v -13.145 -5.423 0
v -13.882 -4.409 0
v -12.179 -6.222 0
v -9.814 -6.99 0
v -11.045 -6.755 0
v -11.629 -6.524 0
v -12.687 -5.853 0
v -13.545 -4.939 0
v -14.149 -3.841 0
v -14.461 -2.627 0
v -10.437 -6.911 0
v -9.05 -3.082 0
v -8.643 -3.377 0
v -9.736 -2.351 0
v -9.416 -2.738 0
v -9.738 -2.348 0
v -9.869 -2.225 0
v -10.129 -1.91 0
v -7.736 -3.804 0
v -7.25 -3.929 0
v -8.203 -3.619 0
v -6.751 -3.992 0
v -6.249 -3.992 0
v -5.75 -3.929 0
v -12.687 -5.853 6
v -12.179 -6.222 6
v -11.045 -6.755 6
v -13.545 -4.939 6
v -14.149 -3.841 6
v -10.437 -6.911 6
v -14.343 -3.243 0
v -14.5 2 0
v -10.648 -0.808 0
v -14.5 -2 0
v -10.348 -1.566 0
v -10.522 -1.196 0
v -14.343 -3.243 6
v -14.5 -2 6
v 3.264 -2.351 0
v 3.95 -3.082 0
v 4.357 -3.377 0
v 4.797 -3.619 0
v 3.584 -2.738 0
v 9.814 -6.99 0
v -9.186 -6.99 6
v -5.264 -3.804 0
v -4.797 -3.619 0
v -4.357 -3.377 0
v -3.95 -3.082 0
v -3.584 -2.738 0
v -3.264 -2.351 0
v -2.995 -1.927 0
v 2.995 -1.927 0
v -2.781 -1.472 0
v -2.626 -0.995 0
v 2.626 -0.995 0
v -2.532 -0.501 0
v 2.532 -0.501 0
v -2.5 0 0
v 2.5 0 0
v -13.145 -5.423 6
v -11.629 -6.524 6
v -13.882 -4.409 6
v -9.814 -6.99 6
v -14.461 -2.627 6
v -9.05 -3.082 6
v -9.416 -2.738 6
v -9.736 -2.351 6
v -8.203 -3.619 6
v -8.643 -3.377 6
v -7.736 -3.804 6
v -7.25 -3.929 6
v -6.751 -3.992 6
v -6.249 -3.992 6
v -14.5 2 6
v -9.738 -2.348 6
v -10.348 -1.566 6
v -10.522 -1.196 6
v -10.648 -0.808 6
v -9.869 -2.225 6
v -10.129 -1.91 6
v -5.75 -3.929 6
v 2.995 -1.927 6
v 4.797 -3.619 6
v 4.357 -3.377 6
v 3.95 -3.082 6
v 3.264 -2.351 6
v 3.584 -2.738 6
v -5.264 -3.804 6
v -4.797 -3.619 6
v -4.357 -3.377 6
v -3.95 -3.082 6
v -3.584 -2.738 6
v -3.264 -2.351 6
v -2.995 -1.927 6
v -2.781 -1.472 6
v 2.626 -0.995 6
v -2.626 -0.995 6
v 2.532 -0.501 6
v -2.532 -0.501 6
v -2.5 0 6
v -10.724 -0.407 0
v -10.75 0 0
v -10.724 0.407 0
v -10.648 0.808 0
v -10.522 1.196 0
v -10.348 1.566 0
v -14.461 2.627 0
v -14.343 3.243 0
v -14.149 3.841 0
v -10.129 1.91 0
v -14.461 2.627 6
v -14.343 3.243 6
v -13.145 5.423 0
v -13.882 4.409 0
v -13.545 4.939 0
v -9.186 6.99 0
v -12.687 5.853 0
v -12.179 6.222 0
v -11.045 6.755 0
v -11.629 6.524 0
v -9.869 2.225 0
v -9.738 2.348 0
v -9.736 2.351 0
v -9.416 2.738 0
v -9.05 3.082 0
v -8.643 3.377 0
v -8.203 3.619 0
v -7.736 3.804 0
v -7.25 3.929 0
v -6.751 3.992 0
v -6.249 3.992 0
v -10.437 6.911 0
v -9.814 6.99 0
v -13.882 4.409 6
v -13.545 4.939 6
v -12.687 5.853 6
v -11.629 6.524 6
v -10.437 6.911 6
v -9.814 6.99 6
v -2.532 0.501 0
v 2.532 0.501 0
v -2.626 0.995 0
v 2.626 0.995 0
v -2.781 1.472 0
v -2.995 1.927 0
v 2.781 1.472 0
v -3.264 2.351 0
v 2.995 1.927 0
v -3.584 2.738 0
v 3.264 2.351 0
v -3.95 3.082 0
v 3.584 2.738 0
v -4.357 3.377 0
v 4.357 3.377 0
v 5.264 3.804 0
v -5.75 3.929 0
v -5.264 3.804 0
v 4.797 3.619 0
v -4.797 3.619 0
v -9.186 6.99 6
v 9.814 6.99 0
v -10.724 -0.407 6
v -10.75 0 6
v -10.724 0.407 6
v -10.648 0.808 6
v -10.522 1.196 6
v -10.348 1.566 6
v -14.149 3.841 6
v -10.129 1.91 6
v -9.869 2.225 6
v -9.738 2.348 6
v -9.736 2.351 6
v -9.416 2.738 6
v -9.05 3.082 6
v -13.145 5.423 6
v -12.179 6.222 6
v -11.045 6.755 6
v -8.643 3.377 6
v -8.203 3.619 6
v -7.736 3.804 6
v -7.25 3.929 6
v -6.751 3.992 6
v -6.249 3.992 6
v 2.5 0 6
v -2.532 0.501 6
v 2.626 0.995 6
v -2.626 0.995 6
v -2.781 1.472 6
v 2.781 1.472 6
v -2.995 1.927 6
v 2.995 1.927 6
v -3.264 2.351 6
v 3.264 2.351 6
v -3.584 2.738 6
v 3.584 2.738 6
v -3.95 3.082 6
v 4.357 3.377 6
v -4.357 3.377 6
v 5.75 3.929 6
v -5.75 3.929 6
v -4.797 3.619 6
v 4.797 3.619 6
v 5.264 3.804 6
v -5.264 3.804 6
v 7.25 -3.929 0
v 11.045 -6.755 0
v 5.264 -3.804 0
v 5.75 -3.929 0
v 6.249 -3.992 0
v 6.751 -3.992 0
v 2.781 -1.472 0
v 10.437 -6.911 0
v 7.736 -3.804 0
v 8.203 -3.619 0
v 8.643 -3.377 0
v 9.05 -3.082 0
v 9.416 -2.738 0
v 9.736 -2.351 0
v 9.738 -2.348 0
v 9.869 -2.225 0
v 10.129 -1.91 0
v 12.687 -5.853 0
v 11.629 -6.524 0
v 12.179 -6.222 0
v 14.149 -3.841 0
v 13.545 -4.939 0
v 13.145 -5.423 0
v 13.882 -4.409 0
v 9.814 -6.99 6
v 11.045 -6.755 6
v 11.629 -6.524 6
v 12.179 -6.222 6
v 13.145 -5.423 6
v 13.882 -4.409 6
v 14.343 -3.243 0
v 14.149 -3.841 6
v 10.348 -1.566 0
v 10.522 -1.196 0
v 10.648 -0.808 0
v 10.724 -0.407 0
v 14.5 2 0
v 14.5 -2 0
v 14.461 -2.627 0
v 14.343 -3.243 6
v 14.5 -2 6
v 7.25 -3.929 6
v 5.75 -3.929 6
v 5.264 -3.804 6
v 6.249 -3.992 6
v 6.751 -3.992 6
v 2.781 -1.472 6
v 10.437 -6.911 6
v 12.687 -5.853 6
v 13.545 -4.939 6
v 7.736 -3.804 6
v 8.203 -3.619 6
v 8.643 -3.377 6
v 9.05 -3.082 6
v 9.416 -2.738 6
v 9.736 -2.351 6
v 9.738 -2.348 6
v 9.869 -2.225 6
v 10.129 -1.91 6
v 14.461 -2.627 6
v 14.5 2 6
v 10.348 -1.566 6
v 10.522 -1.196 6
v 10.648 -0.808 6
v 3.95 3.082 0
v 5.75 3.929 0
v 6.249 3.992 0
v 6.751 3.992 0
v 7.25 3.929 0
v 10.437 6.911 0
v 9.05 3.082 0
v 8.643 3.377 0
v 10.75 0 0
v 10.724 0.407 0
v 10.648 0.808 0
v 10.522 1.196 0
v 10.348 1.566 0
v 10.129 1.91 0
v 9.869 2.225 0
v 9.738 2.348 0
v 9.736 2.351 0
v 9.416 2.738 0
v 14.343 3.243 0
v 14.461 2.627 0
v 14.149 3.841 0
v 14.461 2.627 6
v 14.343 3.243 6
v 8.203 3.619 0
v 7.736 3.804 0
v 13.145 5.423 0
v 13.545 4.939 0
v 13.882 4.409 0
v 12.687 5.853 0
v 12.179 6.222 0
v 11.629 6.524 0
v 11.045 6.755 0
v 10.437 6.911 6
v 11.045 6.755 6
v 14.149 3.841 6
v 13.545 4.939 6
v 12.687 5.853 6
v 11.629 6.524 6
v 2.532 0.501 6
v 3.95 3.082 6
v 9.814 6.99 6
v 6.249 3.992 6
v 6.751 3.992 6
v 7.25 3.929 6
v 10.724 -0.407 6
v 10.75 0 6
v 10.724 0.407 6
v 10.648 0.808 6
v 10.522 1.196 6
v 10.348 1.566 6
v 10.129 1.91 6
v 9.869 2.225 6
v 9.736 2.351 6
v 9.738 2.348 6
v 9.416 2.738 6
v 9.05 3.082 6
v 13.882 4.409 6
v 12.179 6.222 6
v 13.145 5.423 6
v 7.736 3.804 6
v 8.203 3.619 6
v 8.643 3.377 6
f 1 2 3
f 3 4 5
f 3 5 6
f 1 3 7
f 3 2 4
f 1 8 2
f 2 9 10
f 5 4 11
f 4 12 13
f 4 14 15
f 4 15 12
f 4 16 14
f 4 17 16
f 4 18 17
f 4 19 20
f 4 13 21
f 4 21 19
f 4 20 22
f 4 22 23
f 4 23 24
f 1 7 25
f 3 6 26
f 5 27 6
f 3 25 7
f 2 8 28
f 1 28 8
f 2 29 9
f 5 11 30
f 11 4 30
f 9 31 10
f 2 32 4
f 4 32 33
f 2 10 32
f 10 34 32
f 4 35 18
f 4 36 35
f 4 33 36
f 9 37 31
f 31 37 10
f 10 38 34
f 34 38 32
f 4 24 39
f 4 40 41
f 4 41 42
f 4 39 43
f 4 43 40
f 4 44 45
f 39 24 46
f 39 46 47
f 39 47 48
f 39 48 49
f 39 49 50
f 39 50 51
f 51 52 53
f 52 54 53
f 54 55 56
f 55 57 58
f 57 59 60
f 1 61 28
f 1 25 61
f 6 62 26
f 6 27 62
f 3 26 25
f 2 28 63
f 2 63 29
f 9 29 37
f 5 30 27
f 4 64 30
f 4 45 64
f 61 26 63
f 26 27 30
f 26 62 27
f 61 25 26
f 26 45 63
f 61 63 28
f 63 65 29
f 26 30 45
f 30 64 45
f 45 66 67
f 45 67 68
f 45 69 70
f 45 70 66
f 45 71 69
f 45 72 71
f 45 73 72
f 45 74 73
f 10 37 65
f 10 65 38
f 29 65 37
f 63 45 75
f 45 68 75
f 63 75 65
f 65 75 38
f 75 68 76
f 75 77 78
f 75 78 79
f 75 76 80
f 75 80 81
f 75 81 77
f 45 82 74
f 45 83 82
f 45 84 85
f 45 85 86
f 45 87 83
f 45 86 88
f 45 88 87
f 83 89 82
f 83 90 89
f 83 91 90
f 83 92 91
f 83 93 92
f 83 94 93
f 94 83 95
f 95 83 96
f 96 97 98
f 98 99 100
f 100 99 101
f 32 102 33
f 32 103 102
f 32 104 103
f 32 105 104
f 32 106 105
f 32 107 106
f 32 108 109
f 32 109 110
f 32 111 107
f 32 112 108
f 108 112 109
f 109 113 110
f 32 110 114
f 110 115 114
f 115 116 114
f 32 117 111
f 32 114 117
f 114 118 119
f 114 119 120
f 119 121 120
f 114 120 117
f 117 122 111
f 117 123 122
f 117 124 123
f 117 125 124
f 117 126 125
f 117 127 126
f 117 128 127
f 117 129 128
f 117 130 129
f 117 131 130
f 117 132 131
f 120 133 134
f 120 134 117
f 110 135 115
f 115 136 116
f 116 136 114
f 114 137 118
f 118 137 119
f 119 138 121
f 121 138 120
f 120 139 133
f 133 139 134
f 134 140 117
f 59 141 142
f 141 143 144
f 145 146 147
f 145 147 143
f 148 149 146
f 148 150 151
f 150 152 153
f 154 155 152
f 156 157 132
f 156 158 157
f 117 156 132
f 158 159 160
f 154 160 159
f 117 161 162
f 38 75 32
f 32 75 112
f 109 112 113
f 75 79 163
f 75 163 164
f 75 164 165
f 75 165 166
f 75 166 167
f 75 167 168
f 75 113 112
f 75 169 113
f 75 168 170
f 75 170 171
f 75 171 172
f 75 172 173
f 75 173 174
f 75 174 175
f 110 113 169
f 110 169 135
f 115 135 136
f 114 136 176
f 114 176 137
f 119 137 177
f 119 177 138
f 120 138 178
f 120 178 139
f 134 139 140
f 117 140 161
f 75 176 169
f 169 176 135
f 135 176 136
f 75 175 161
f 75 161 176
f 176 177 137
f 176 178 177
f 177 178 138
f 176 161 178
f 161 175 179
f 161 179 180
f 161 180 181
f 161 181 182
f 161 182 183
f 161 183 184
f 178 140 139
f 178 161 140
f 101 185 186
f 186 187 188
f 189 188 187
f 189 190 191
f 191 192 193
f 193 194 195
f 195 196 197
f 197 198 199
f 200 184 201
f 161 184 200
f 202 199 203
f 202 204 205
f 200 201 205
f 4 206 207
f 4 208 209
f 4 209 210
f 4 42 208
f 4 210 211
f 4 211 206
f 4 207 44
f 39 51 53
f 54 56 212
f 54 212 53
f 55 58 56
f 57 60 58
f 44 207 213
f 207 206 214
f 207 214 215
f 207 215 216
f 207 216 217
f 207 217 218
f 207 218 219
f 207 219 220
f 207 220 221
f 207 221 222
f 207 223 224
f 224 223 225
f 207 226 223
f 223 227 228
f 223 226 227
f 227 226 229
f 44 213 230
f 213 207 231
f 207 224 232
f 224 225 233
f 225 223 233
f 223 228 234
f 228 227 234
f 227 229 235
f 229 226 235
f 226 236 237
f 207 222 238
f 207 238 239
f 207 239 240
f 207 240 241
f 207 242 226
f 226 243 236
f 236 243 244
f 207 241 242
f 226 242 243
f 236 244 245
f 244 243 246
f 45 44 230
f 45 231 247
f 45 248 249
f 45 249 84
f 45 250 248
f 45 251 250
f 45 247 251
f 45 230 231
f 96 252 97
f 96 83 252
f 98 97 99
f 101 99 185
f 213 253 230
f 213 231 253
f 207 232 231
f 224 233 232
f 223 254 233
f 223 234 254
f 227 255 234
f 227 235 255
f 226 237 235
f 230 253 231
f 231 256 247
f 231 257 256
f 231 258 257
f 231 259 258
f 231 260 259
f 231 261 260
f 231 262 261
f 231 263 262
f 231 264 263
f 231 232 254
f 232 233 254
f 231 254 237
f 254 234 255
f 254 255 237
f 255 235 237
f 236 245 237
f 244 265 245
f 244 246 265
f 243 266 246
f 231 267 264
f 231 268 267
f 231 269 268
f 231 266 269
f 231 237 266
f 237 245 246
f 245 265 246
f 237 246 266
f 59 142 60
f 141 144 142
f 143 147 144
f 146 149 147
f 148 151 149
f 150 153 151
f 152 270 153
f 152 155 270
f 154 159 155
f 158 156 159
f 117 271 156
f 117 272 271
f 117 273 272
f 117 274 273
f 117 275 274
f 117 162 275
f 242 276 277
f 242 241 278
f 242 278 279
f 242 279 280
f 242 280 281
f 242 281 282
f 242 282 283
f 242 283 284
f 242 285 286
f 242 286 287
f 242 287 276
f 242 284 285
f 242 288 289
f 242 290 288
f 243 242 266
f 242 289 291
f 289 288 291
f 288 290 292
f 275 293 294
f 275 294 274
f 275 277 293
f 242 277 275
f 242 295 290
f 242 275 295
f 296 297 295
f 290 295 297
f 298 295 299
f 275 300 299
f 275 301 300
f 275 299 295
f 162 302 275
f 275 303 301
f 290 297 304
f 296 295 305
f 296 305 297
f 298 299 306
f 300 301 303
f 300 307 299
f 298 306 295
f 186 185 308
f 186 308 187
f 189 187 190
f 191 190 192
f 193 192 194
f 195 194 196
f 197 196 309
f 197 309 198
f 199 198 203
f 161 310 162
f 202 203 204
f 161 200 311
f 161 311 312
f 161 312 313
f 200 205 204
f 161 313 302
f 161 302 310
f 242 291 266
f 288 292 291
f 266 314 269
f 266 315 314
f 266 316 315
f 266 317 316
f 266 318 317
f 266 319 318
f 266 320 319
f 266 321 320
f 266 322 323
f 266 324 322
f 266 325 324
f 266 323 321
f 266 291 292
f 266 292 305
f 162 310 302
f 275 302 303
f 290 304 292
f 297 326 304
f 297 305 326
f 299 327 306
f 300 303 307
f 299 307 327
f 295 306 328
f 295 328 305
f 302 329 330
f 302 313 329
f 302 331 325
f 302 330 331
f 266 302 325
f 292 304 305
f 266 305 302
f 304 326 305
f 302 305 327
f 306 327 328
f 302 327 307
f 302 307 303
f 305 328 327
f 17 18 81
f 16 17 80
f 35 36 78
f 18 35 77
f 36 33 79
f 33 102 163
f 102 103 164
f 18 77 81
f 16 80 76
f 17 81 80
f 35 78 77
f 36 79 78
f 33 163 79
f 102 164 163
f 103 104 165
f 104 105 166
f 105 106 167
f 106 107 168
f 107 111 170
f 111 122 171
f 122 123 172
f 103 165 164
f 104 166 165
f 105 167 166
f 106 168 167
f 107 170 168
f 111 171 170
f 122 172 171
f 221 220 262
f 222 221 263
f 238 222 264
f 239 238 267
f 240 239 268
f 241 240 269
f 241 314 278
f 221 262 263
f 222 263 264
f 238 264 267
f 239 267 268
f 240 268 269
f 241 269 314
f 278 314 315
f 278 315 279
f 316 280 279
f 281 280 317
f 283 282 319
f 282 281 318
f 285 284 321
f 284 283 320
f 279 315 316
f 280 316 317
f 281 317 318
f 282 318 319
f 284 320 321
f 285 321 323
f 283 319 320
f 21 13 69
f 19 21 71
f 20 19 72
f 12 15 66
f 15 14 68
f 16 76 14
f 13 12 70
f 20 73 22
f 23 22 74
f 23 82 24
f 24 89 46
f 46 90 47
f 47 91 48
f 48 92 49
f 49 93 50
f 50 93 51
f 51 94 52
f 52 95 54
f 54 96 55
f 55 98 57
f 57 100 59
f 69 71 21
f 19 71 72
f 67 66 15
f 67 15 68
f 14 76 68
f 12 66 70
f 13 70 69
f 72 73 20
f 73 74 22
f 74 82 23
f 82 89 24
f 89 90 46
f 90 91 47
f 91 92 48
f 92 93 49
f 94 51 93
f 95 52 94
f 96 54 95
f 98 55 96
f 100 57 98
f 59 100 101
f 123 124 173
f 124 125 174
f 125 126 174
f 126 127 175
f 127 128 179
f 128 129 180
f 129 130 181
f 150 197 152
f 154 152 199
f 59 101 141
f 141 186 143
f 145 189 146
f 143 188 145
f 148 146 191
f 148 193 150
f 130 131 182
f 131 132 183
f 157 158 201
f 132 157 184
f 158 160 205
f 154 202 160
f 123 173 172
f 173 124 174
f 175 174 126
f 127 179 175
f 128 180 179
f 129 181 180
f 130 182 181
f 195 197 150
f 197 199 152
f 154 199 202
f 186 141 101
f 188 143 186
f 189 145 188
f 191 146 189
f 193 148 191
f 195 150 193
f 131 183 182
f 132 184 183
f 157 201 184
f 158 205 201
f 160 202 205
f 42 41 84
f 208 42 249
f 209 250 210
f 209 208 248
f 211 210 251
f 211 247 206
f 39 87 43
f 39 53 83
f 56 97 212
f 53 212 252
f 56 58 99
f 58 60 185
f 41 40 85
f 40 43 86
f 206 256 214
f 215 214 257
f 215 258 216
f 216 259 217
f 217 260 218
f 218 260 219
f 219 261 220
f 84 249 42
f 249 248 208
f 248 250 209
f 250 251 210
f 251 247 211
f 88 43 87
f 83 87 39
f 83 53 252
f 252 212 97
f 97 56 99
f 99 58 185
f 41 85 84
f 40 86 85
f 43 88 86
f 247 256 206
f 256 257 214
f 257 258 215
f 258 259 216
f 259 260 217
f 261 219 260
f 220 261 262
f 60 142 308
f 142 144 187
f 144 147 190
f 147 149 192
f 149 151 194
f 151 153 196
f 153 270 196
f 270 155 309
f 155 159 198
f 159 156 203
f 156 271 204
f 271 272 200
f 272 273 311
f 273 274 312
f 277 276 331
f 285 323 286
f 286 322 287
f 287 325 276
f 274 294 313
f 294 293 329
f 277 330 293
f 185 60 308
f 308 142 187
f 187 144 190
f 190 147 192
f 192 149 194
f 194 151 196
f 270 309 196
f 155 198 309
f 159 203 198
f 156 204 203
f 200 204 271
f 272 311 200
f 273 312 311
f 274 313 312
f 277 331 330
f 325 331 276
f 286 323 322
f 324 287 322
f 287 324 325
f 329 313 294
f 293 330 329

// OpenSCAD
$fn = 50;

difference() {
	union() {
		hull() {
			translate(v = [-9.5, 2.0, 0]) {
				cylinder(h = 6, r = 5);
			}
			translate(v = [9.5, 2.0, 0]) {
				cylinder(h = 6, r = 5);
			}
			translate(v = [-9.5, -2.0, 0]) {
				cylinder(h = 6, r = 5);
			}
			translate(v = [9.5, -2.0, 0]) {
				cylinder(h = 6, r = 5);
			}
		}
	}
	union() {
		translate(v = [-7.5, 0.0, -100.0]) {
			cylinder(h = 200, r = 3.25);
		}
		translate(v = [7.5, 0.0, -100.0]) {
			cylinder(h = 200, r = 3.25);
		}
		translate(v = [-7.5, 0.0, -100.0]) {
			cylinder(h = 200, r = 1.8);
		}
		translate(v = [7.5, 0.0, -100.0]) {
			cylinder(h = 200, r = 1.8);
		}
		translate(v = [-6.5, 0, 0.0]) {
			cylinder(h = 6, r = 4.0);
		}
		translate(v = [6.5, 0, 0.0]) {
			cylinder(h = 6, r = 4.0);
		}
	}
}
